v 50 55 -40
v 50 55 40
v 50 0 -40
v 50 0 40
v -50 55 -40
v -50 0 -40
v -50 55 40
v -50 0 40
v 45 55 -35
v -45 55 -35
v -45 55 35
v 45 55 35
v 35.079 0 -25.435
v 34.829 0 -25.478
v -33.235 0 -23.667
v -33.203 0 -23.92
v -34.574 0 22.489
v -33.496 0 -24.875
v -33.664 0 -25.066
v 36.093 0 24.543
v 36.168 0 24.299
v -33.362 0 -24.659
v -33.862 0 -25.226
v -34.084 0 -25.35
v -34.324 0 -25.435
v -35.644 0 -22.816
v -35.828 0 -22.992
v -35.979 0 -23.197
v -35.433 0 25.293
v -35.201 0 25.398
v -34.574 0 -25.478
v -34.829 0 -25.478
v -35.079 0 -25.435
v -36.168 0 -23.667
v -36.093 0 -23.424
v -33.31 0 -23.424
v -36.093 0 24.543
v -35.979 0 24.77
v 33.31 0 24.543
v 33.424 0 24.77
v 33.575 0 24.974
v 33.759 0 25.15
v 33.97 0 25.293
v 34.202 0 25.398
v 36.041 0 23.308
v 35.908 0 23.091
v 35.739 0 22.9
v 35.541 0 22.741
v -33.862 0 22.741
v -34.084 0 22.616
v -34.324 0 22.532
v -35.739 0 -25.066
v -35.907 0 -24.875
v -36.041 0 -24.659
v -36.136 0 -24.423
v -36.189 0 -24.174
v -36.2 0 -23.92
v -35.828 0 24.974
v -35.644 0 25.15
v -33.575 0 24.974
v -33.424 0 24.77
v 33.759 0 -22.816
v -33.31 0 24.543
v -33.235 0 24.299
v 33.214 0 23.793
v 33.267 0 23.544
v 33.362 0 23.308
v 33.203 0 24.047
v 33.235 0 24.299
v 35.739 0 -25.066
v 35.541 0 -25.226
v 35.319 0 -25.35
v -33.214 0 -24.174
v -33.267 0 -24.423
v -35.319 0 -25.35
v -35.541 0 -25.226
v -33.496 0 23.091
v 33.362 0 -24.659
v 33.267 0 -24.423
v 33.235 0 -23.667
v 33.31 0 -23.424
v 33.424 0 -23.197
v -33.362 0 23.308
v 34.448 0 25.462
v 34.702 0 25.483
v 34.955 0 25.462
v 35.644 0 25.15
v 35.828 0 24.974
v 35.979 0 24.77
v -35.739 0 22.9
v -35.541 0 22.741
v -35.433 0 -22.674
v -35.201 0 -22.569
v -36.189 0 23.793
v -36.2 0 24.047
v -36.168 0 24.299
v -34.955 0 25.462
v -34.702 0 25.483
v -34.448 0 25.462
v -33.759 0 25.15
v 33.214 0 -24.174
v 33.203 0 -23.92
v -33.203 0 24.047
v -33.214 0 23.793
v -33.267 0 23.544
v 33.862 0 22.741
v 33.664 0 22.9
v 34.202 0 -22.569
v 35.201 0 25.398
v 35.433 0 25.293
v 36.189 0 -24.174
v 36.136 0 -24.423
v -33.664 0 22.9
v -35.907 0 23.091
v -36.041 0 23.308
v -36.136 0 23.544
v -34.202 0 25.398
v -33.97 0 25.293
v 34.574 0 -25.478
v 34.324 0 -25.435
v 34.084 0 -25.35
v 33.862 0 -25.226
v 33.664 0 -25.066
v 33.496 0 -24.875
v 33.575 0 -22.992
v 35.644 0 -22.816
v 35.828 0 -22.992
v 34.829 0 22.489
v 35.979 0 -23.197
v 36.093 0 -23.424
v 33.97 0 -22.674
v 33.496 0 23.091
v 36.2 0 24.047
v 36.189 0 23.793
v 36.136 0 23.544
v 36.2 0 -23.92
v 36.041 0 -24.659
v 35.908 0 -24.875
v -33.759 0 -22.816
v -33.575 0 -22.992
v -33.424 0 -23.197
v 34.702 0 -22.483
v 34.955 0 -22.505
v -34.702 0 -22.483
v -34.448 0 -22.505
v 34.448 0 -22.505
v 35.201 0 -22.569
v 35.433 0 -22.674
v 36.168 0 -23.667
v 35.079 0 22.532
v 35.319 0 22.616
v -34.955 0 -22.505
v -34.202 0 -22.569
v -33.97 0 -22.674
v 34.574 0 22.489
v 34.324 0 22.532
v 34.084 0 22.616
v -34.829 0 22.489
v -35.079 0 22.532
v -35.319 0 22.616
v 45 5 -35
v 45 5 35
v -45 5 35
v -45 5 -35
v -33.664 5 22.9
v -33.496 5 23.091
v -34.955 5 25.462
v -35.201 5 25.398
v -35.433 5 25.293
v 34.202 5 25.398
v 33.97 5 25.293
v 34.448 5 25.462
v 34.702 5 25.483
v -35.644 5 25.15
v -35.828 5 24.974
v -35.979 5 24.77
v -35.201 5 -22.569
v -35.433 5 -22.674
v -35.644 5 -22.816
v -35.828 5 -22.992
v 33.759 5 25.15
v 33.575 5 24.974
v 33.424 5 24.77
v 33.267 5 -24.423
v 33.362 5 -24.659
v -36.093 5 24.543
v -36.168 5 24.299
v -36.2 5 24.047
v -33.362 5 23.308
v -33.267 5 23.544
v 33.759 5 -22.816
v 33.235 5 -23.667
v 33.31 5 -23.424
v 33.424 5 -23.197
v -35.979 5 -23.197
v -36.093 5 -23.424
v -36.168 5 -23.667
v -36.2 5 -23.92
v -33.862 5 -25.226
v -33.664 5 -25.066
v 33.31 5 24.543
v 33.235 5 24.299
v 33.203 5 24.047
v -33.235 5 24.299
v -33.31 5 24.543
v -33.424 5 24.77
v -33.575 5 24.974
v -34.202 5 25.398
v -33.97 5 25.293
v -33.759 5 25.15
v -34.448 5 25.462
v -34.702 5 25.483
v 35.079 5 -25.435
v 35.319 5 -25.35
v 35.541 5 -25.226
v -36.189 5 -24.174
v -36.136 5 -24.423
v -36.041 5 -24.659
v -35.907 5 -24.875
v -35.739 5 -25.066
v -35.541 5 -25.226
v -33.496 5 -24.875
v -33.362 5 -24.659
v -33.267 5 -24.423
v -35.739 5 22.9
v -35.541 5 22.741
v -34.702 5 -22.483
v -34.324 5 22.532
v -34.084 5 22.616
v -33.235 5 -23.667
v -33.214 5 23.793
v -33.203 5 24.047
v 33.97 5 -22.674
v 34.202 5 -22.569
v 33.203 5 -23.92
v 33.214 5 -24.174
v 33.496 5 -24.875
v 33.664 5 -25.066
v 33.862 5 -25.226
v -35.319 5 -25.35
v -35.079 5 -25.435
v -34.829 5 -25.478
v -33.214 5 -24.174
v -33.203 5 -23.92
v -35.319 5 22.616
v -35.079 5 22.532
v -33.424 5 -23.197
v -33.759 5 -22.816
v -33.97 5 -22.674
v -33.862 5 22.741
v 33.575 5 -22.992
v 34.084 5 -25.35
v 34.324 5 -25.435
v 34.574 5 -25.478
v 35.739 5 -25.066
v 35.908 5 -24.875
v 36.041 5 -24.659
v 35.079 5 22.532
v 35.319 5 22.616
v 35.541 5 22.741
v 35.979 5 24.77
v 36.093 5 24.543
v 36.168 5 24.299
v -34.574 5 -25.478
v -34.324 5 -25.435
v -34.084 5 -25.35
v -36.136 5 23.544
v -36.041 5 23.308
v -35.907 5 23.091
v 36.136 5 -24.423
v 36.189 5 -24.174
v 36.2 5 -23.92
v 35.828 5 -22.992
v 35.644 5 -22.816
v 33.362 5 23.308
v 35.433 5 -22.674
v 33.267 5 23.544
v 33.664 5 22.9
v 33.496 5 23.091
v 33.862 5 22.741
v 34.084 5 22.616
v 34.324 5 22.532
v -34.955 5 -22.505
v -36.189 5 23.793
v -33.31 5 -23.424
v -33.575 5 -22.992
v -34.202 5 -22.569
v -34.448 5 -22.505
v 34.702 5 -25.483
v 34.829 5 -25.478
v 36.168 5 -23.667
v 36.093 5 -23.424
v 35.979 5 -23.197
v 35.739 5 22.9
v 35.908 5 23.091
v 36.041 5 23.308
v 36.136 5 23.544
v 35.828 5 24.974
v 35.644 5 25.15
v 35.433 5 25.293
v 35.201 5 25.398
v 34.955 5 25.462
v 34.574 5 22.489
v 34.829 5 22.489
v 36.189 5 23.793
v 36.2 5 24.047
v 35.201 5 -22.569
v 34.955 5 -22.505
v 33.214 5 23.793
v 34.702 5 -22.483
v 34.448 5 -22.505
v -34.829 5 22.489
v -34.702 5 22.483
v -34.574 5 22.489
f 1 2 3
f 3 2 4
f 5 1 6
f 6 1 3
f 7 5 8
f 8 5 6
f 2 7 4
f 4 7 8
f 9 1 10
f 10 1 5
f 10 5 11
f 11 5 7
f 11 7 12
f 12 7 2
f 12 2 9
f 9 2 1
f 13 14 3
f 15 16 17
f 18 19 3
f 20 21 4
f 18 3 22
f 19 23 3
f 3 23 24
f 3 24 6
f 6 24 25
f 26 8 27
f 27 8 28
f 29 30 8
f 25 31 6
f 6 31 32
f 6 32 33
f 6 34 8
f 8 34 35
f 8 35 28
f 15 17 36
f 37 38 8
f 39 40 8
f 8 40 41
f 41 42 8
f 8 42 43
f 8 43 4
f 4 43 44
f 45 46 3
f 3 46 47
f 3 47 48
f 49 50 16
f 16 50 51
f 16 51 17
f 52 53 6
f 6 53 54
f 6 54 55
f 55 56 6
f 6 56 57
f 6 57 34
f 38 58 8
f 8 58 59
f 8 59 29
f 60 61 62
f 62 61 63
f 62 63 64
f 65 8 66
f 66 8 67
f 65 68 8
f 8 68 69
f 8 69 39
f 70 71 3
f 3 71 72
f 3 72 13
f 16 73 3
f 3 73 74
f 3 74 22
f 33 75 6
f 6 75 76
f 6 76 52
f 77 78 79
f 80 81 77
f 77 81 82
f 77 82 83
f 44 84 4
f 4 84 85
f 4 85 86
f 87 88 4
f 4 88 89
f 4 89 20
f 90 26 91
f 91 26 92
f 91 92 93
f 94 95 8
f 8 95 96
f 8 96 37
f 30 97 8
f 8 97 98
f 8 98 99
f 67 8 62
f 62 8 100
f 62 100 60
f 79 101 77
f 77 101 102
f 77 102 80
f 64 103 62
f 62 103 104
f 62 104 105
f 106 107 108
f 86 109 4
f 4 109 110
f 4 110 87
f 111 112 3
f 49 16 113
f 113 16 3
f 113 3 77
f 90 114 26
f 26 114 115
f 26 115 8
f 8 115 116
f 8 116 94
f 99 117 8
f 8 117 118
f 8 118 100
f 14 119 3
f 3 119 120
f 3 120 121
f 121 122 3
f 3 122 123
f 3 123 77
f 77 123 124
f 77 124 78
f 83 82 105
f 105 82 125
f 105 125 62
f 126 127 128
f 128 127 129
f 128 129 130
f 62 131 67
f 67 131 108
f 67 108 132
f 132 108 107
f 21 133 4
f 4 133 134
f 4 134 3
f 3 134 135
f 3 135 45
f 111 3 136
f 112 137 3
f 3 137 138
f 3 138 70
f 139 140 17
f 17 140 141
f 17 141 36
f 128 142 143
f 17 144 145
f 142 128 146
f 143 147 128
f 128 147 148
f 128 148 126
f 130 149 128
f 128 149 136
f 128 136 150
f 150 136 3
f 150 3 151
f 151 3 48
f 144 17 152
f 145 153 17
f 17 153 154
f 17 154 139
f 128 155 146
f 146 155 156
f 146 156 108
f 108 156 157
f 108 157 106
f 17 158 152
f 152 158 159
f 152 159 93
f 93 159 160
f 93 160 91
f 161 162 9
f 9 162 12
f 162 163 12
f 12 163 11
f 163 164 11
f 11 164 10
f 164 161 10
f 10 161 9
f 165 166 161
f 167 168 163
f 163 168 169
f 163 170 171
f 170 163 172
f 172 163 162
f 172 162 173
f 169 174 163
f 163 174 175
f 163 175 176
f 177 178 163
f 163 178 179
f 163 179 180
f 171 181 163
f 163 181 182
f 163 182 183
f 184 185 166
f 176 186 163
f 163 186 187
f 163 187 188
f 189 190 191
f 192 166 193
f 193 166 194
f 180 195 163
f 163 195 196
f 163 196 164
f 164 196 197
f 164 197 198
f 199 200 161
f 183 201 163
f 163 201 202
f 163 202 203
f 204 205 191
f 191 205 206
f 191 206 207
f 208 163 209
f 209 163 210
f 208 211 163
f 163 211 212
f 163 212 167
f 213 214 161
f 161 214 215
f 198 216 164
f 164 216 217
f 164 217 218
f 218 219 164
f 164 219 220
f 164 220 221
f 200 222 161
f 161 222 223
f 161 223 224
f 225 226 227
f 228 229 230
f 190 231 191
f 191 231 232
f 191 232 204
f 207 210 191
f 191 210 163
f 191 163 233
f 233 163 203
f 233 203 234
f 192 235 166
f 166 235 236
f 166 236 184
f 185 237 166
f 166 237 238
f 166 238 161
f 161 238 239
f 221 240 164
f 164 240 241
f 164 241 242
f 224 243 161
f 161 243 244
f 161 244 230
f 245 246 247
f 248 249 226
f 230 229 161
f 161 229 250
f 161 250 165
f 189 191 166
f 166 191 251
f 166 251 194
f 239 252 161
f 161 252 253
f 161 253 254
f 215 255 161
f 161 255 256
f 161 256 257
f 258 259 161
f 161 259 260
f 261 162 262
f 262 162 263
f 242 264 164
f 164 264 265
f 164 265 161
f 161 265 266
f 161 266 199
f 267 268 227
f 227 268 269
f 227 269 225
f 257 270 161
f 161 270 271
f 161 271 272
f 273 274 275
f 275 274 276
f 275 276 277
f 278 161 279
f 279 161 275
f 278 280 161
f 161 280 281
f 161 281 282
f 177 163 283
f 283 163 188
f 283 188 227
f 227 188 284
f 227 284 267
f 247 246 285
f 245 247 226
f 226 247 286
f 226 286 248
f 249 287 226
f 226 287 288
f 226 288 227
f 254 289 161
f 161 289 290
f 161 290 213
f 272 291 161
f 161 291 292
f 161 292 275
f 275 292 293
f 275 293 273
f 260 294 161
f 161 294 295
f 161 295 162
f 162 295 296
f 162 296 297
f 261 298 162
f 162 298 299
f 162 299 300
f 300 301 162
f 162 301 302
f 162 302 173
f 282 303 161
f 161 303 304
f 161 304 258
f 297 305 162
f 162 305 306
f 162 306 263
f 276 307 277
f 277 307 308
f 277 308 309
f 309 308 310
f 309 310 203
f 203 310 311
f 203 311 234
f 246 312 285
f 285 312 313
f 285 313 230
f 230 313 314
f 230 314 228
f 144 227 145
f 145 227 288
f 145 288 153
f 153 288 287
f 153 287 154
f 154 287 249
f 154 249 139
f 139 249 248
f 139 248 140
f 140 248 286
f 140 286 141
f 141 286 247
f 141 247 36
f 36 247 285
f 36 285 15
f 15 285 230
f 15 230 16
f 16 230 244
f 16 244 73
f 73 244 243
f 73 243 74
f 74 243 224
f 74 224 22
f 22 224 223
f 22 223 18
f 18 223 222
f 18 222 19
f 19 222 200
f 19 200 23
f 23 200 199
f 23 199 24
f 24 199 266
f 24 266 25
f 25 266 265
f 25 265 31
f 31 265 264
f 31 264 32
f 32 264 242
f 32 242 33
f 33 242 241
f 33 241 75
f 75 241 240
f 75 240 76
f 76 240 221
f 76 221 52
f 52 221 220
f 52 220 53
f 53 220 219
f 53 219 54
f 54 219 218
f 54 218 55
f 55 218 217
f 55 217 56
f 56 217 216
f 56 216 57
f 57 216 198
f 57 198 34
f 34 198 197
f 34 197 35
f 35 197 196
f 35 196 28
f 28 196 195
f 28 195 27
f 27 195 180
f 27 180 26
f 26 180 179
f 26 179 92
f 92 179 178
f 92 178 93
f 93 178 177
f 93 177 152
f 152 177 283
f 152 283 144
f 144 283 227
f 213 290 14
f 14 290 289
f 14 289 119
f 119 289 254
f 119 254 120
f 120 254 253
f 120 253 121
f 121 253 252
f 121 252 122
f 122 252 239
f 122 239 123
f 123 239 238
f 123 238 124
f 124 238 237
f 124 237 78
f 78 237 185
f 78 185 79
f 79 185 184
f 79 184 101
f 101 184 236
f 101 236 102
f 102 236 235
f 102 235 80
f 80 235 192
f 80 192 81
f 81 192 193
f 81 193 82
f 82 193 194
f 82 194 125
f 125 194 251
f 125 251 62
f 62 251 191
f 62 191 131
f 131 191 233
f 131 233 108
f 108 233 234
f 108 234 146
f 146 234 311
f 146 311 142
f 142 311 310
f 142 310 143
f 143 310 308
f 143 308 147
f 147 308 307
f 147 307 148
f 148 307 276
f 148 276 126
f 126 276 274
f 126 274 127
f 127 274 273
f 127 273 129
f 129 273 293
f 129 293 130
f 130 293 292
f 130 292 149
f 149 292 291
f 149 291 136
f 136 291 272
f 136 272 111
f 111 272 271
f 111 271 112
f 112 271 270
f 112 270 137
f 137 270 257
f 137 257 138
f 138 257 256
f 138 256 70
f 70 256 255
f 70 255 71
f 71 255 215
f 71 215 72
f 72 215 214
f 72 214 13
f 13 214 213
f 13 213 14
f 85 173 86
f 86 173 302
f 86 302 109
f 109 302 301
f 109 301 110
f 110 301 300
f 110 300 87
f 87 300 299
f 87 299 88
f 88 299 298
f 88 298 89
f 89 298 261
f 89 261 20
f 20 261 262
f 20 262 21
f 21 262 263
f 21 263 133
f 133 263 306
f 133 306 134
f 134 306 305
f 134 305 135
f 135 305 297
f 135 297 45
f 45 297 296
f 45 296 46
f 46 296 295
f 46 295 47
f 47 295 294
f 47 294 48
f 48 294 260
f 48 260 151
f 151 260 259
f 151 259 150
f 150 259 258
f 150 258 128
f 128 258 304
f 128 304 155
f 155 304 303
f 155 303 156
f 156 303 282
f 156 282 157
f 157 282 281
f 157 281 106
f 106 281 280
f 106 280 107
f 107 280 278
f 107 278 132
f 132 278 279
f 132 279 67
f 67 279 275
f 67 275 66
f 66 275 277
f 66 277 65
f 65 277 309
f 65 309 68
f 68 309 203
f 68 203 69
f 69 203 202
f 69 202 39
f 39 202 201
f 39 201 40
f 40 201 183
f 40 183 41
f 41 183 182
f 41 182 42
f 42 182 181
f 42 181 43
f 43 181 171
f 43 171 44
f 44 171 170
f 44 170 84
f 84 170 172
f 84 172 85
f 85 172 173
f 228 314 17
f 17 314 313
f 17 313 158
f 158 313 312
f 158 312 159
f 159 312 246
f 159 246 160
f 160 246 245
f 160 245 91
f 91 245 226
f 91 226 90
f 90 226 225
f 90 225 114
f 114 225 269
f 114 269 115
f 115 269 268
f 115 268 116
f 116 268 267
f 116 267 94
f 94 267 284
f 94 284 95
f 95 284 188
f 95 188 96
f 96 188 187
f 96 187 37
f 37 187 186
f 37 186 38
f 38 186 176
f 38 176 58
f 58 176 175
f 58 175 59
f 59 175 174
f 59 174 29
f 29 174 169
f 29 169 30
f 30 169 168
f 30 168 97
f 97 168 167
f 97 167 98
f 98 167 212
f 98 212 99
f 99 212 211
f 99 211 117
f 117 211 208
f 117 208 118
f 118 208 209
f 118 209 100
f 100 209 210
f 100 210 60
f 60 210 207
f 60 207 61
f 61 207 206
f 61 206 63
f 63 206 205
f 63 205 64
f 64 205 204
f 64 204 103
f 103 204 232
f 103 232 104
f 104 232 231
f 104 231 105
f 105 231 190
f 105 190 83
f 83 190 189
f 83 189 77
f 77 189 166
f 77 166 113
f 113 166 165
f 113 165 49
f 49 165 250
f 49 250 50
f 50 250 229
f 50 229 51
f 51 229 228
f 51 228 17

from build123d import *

# Parameters (mm, degrees)
SKETCH1_W           = 100
SKETCH1_H           = 80
BOSS_EXTRUDE1_DEPTH = 55
SKETCH3_W           = 90
SKETCH3_H           = 70
CUT_EXTRUDE1_DEPTH  = 50
SKETCH5_R           = 1.5
CUT_EXTRUDE2_DEPTH  = 50


with BuildPart() as part:
    # Sketch1 → Boss-Extrude1 (new body)
    with BuildSketch(Plane(origin=(0, 0, 0), x_dir=(1, 0, 0), z_dir=(0, 1, 0))):
        Rectangle(SKETCH1_W, SKETCH1_H)
    extrude(amount=BOSS_EXTRUDE1_DEPTH)

    # Sketch3 → Cut-Extrude1 (cut)
    with BuildSketch(Plane(origin=(0, 55, 0), x_dir=(1, 0, 0), z_dir=(0, 1, 0))):
        Rectangle(SKETCH3_W, SKETCH3_H)
    extrude(amount=-CUT_EXTRUDE1_DEPTH, mode=Mode.SUBTRACT)

    # Sketch5 → Cut-Extrude2 (cut)
    with BuildSketch(Plane(origin=(0, 5, 0), x_dir=(1, 0, 0), z_dir=(0, 1, 0))):
        with Locations(Location((-34.701504138, 23.983302554, 0), (0, 0, 270))):
            Circle(SKETCH5_R)
        with Locations(Location((34.701504138, 23.983302554, 0), (0, 0, 270))):
            Circle(SKETCH5_R)
        with Locations(Location((34.701504138, -23.983302554, 0), (0, 0, 270))):
            Circle(SKETCH5_R)
        with Locations(Location((-34.701504138, -23.983302554, 0), (0, 0, 270))):
            Circle(SKETCH5_R)
    extrude(amount=-CUT_EXTRUDE2_DEPTH, mode=Mode.SUBTRACT)


solid = part.part
